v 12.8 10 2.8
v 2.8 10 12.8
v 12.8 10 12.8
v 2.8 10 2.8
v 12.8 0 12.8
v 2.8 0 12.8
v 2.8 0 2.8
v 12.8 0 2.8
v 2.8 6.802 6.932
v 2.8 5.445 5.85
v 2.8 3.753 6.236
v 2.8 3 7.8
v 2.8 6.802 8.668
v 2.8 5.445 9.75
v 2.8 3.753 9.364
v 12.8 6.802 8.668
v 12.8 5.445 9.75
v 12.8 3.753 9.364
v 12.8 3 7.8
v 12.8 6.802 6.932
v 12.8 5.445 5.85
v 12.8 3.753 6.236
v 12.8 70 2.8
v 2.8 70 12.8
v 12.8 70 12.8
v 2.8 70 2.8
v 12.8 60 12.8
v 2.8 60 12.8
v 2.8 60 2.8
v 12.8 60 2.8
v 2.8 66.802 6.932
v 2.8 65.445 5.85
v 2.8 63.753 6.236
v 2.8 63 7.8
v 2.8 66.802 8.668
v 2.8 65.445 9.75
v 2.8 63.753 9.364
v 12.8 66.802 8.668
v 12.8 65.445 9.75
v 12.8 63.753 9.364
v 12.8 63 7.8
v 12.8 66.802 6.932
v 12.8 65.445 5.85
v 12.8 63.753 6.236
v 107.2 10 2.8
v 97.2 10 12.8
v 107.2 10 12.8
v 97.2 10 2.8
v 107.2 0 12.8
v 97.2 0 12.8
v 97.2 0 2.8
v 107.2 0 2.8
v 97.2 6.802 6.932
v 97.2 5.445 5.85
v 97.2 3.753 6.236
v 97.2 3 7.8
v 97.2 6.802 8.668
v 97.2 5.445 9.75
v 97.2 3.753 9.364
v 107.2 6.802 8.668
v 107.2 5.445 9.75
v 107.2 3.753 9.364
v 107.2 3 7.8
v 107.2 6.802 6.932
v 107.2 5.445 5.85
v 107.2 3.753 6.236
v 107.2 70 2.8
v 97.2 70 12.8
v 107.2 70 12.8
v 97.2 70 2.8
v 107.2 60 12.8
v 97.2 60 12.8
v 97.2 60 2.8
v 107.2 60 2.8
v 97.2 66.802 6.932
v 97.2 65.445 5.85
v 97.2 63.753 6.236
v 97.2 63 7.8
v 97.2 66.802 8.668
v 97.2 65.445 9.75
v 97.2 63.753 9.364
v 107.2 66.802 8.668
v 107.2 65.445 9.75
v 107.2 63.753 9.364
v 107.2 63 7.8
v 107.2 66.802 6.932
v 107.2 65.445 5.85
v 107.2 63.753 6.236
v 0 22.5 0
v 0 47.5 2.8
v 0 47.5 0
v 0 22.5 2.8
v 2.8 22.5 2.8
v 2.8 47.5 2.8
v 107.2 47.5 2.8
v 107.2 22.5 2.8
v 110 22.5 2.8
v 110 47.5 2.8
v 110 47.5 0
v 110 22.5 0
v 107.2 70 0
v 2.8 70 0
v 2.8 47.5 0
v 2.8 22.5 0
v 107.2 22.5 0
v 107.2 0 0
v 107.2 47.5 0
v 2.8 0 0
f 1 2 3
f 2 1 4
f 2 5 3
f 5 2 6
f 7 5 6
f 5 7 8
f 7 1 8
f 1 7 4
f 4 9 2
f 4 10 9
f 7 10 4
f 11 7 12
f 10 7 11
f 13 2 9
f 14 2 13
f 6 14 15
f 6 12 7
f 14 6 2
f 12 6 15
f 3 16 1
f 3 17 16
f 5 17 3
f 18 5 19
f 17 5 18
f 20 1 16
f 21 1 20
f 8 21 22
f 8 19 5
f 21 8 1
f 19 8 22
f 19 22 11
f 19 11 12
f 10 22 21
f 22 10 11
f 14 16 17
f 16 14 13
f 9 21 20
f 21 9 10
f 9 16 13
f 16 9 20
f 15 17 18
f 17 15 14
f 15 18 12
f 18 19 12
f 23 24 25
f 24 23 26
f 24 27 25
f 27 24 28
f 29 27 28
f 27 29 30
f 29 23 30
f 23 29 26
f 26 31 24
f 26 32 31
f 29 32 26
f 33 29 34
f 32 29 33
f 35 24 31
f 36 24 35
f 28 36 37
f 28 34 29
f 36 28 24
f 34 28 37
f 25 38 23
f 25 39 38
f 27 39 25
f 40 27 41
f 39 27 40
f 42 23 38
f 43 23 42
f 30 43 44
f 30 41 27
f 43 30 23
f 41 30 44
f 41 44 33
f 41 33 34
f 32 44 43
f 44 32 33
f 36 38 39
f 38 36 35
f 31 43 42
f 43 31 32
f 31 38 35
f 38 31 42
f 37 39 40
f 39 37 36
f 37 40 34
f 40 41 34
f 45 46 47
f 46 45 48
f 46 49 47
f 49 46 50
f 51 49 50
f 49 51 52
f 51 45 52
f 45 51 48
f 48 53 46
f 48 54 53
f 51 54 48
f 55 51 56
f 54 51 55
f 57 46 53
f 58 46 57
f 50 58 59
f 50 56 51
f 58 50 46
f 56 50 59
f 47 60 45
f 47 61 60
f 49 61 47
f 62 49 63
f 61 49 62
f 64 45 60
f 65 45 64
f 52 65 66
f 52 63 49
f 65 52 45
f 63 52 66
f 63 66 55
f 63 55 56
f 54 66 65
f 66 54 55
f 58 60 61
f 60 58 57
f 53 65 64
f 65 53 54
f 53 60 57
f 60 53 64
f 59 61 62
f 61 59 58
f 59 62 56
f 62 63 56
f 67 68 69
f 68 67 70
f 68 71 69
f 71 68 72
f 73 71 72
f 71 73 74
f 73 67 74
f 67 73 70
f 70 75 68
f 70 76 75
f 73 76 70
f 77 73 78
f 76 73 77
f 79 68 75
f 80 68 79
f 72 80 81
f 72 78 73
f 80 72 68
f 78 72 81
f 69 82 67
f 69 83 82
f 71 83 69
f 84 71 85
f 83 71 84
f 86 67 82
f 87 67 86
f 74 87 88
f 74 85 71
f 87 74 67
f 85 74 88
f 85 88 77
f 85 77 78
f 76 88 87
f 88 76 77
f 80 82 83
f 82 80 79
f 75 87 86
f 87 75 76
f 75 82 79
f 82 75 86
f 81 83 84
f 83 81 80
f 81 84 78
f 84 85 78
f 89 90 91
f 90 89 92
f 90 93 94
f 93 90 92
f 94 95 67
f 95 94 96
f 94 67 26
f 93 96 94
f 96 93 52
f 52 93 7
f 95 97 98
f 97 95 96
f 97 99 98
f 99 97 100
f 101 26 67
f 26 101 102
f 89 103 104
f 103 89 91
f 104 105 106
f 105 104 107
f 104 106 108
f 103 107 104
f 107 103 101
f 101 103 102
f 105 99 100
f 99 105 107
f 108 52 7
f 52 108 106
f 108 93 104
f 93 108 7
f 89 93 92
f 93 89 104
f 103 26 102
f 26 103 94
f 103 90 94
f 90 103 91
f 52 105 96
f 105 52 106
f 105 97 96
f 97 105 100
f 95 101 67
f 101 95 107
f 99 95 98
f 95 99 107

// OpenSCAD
// file: modules.scad
thickness = 3;
ultrasonic_hole_radius = 8.25;
ultrasonic_hole_distance = 25.5;
pin_side = 2.5;



module roundExtract(pos_x, pos_y, radius) {
     translate([pos_x, pos_y,0]) 
		cylinder(h = thickness, r = radius);
 }

module squareExtract(pos_x, pos_y, width, length) {
	translate([pos_x, pos_y,0])
		cube(size = [width, length, thickness]);
}

module ultrasonicExtract(pos_x, pos_y, rotation) {
	translate([pos_x,pos_y,0]){
		rotate([0,0,rotation]) {
			union(){ 
				translate([0,0,0])
					cylinder(h = thickness, r = ultrasonic_hole_radius);
				translate([ultrasonic_hole_distance,0,0])
					cylinder(h = thickness, r = ultrasonic_hole_radius);
				translate([ultrasonic_hole_distance/2-3.75,-9,0])
					cube(size = [7.5, 2, thickness]);
				translate([ultrasonic_hole_distance/2-4.75,6,0])
					cube(size = [10, 4, thickness]);
			}
		}
	}
}

module IMUExtract(pos_x,pos_y, rotation) {
	translate([pos_x,pos_y,0]){
		rotate([0,0,rotation]) {
			union(){ 
				roundExtract(13,3,2);
				roundExtract(13,25,2);
				squareExtract(0,0,pin_side,pin_side*11);
			}
		}
	}
}

module stepperExtraction(pos_x,pos_y, rotation) {
	translate([pos_x,pos_y,0]){
		rotate([0,0,rotation]) {
			union(){ 
				roundExtract(14,9,2);
				roundExtract(10,33,2);
				squareExtract(1.5,1.5,pin_side,pin_side*3);//3 pins
				squareExtract(20-pin_side-1.5,1.5,pin_side,pin_side*2);//2 pin
				squareExtract(20-pin_side-1.5,32,pin_side,pin_side*4);//4 pins
			}
		}
	}

}

module screwAttach(pos_x, pos_y, pos_z, width, length, height, rotation) {
translate([pos_x,pos_y, pos_z]){
		rotate([0,0,rotation]) {
			difference(){ 
				cube(width,length,height);
				translate([width/2, 0,height/2]) {
					rotate([270,0,0]) {
						cylinder(h = 10, r=2);
					}
				}
				
			}
		}
	}


}
// main file
include <modules.scad>;

width = 110;
length = 70;
thickness = 2.8;
plate_fill_width = 22.5;
cable_extract_width = 12;
IMU_width = 16;
IMU_length = 28;
IMU_width_offset = 2;//Offset of the sensor on the PCB

union() {
	difference(){
		cube(size = [width, length, thickness]);
	
		//Corner extract
		squareExtract(0,0, thickness, plate_fill_width);		
		squareExtract(0,length-plate_fill_width,thickness, plate_fill_width);
		squareExtract(width-thickness,0,thickness, plate_fill_width);	
		squareExtract(width-thickness,length-plate_fill_width,thickness, plate_fill_width);

			

	}

	screwAttach(thickness, 10, thickness, 10, 10, 10, 270);	
	screwAttach(thickness, 70, thickness, 10, 10, 10, 270);
	screwAttach(width-thickness - 10, 10, thickness, 10, 10, 10, 270);
	screwAttach(width-thickness-10, 70, thickness, 10, 10, 10, 270);
}
